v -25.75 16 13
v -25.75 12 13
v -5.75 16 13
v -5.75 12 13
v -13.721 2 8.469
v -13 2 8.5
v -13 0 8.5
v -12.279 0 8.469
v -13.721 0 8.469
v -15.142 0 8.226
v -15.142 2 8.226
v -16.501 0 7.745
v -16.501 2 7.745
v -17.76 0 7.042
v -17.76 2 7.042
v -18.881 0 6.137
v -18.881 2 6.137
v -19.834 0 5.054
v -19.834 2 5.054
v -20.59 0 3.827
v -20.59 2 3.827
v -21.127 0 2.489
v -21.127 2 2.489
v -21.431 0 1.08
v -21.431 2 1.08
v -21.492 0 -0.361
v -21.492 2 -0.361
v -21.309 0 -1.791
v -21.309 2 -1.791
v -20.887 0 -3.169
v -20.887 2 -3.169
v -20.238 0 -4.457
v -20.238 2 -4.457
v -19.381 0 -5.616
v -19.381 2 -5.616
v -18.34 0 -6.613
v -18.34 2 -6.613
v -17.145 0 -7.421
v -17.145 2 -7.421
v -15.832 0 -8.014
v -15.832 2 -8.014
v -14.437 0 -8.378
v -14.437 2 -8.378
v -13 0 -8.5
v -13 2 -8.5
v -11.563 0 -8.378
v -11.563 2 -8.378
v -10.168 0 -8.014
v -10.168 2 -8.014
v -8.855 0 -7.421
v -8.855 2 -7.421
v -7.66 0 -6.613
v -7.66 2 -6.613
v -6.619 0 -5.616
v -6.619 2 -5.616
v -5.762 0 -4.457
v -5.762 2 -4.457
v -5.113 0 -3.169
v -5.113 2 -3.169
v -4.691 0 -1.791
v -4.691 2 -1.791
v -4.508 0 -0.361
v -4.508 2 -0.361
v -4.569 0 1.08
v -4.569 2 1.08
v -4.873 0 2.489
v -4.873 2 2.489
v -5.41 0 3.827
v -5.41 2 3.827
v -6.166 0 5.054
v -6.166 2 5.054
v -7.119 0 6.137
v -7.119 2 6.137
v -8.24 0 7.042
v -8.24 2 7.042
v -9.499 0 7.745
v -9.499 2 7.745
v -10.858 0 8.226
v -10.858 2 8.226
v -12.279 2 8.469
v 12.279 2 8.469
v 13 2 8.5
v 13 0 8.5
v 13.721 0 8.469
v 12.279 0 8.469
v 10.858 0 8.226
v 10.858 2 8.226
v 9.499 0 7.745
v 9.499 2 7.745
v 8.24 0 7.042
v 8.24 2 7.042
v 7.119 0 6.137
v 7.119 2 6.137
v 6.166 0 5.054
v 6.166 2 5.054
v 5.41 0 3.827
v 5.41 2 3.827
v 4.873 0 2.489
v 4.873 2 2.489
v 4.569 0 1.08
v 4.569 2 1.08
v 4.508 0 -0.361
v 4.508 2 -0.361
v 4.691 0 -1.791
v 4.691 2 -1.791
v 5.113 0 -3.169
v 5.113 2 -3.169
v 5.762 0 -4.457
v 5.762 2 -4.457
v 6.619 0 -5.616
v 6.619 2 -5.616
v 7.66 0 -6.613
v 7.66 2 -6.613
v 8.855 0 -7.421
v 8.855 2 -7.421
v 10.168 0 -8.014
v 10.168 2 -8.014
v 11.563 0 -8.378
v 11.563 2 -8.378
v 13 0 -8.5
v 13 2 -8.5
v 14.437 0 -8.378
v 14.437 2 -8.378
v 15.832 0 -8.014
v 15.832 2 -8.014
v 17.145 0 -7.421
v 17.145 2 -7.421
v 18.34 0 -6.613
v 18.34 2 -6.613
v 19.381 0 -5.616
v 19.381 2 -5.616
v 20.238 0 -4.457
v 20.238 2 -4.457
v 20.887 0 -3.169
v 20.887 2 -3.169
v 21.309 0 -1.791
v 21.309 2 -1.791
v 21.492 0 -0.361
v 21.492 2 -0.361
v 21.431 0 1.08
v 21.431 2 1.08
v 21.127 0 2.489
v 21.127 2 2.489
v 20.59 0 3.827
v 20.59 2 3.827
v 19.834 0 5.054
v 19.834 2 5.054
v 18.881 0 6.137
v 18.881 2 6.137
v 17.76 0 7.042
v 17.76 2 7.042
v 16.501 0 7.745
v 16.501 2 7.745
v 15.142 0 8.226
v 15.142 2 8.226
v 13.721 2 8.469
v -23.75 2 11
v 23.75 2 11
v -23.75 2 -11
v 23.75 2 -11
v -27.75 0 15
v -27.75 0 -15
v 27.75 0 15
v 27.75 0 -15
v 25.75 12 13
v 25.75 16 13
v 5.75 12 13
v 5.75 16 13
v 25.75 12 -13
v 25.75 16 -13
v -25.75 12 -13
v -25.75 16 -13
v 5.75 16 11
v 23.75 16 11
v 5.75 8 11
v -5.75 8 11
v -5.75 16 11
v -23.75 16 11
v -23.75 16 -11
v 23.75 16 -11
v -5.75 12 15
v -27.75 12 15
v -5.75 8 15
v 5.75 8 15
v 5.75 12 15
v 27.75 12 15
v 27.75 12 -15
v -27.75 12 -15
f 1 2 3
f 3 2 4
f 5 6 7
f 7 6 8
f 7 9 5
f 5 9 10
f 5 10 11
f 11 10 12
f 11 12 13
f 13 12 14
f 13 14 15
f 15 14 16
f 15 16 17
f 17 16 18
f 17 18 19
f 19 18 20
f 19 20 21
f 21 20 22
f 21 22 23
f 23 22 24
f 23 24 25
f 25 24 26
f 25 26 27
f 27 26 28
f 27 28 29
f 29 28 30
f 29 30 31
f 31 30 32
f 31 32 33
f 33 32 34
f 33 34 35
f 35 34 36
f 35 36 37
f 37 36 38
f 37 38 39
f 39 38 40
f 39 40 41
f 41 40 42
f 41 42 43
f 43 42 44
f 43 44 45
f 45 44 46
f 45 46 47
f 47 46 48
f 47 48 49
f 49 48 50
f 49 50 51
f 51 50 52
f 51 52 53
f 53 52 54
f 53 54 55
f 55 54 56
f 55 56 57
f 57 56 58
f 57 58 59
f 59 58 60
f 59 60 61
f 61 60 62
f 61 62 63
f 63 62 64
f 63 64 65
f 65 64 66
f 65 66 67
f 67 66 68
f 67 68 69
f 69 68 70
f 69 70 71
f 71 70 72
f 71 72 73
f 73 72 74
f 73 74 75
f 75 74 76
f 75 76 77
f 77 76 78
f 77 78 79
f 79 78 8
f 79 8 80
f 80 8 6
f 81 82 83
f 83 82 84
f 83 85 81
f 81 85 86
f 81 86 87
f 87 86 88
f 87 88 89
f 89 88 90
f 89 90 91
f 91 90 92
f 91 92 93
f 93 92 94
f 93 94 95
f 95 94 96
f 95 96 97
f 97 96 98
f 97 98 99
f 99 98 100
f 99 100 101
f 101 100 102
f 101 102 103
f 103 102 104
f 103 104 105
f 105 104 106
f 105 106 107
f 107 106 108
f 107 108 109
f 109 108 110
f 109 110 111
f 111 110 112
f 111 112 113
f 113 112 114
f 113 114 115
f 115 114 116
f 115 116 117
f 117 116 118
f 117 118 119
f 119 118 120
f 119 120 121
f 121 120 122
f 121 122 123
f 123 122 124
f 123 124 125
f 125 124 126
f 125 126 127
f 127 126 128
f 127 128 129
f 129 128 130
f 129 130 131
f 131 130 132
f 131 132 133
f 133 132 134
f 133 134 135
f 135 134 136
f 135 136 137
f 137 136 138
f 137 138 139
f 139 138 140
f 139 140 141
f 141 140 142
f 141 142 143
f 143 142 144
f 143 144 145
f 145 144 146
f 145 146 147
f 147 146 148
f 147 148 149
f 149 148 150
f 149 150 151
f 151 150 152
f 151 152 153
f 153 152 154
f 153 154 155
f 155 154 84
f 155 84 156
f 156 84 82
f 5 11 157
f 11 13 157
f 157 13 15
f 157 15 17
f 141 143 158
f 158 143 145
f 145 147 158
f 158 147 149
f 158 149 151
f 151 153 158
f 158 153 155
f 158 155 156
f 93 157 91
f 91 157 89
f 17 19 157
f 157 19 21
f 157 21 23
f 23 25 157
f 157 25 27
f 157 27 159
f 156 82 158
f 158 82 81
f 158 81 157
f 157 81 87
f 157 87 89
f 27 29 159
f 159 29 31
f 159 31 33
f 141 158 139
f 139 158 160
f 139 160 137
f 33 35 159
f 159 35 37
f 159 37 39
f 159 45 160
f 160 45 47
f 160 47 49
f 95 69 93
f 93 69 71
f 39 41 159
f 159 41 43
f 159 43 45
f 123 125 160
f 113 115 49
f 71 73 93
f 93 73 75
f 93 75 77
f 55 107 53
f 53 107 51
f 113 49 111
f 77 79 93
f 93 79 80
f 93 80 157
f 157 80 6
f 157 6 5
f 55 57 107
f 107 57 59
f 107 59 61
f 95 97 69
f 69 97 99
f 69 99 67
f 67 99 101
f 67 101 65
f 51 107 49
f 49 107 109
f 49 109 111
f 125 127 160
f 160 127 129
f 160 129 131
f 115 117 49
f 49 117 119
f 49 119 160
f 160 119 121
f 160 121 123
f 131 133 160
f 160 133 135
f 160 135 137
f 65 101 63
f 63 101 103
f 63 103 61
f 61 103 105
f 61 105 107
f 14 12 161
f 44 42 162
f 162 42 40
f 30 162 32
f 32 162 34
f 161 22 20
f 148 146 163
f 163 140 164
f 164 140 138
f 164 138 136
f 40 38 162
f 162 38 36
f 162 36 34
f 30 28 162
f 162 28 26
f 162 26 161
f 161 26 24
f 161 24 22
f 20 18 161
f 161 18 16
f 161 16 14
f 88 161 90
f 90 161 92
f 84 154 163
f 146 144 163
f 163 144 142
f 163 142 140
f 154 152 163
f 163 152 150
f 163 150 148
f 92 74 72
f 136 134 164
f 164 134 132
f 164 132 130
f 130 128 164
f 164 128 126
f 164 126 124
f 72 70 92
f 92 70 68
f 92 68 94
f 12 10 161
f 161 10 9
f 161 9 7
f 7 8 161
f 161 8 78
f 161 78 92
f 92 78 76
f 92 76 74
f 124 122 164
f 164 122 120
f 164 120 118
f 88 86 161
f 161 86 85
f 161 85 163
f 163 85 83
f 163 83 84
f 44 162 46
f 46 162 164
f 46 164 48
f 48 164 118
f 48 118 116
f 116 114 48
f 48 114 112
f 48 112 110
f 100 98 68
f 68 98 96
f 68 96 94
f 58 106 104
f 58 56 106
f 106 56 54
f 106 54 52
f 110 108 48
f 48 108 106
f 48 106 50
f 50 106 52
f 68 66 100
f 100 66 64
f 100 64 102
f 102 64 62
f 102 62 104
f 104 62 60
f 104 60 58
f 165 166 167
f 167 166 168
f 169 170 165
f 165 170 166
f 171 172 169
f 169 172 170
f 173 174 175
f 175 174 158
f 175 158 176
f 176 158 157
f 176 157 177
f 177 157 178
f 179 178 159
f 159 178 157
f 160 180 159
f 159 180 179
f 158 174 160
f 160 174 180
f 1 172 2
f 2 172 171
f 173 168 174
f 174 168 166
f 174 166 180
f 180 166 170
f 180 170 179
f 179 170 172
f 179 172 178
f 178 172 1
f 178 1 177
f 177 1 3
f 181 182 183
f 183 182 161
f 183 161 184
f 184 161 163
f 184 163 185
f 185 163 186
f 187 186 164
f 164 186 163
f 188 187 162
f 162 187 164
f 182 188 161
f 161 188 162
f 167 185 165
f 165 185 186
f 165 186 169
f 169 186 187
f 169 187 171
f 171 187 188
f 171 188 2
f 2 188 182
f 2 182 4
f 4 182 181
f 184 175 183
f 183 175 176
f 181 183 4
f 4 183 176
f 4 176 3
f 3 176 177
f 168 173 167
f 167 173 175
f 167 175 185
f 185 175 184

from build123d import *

# Parameters (mm, degrees)
SKETCH1_W           = 47.5
SKETCH1_H           = 22
SKETCH1_R           = 8.5
BOSS_EXTRUDE1_DEPTH = 2
SKETCH1_3_W         = 51.5
SKETCH1_3_H         = 26
SKETCH1_3_W_2       = 47.5
SKETCH1_3_H_2       = 22
BOSS_EXTRUDE2_DEPTH = 16
SKETCH1_5_W         = 55.5
SKETCH1_5_H         = 30
SKETCH1_5_W_2       = 51.5
SKETCH1_5_H_2       = 26
BOSS_EXTRUDE3_DEPTH = 12
SKETCH2_W           = 11.5
SKETCH2_H           = 8
CUT_EXTRUDE1_DEPTH  = 12


with BuildPart() as part:
    # Sketch1 → Boss-Extrude1 (new body)
    with BuildSketch(Plane(origin=(0, 0, 0), x_dir=(1, 0, 0), z_dir=(0, 1, 0))):
        Rectangle(SKETCH1_W, SKETCH1_H)
        with Locations((-13, 0)):
            Circle(SKETCH1_R, mode=Mode.SUBTRACT)
        with Locations((13, 0)):
            Circle(SKETCH1_R, mode=Mode.SUBTRACT)
    extrude(amount=BOSS_EXTRUDE1_DEPTH)

    # Sketch1<3> → Boss-Extrude2 (add)
    with BuildSketch(Plane(origin=(0, 0, 0), x_dir=(1, 0, 0), z_dir=(0, 1, 0))):
        Rectangle(SKETCH1_3_W, SKETCH1_3_H)
        Rectangle(SKETCH1_3_W_2, SKETCH1_3_H_2, mode=Mode.SUBTRACT)
    extrude(amount=BOSS_EXTRUDE2_DEPTH)

    # Sketch1<5> → Boss-Extrude3 (add)
    with BuildSketch(Plane(origin=(0, 0, 0), x_dir=(1, 0, 0), z_dir=(0, 1, 0))):
        Rectangle(SKETCH1_5_W, SKETCH1_5_H)
        Rectangle(SKETCH1_5_W_2, SKETCH1_5_H_2, mode=Mode.SUBTRACT)
    extrude(amount=BOSS_EXTRUDE3_DEPTH)

    # Sketch2 → Cut-Extrude1 (cut)
    with BuildSketch(Plane.XY.offset(15)):
        with Locations((0, 12)):
            Rectangle(SKETCH2_W, SKETCH2_H)
    extrude(amount=-CUT_EXTRUDE1_DEPTH, mode=Mode.SUBTRACT)


solid = part.part
